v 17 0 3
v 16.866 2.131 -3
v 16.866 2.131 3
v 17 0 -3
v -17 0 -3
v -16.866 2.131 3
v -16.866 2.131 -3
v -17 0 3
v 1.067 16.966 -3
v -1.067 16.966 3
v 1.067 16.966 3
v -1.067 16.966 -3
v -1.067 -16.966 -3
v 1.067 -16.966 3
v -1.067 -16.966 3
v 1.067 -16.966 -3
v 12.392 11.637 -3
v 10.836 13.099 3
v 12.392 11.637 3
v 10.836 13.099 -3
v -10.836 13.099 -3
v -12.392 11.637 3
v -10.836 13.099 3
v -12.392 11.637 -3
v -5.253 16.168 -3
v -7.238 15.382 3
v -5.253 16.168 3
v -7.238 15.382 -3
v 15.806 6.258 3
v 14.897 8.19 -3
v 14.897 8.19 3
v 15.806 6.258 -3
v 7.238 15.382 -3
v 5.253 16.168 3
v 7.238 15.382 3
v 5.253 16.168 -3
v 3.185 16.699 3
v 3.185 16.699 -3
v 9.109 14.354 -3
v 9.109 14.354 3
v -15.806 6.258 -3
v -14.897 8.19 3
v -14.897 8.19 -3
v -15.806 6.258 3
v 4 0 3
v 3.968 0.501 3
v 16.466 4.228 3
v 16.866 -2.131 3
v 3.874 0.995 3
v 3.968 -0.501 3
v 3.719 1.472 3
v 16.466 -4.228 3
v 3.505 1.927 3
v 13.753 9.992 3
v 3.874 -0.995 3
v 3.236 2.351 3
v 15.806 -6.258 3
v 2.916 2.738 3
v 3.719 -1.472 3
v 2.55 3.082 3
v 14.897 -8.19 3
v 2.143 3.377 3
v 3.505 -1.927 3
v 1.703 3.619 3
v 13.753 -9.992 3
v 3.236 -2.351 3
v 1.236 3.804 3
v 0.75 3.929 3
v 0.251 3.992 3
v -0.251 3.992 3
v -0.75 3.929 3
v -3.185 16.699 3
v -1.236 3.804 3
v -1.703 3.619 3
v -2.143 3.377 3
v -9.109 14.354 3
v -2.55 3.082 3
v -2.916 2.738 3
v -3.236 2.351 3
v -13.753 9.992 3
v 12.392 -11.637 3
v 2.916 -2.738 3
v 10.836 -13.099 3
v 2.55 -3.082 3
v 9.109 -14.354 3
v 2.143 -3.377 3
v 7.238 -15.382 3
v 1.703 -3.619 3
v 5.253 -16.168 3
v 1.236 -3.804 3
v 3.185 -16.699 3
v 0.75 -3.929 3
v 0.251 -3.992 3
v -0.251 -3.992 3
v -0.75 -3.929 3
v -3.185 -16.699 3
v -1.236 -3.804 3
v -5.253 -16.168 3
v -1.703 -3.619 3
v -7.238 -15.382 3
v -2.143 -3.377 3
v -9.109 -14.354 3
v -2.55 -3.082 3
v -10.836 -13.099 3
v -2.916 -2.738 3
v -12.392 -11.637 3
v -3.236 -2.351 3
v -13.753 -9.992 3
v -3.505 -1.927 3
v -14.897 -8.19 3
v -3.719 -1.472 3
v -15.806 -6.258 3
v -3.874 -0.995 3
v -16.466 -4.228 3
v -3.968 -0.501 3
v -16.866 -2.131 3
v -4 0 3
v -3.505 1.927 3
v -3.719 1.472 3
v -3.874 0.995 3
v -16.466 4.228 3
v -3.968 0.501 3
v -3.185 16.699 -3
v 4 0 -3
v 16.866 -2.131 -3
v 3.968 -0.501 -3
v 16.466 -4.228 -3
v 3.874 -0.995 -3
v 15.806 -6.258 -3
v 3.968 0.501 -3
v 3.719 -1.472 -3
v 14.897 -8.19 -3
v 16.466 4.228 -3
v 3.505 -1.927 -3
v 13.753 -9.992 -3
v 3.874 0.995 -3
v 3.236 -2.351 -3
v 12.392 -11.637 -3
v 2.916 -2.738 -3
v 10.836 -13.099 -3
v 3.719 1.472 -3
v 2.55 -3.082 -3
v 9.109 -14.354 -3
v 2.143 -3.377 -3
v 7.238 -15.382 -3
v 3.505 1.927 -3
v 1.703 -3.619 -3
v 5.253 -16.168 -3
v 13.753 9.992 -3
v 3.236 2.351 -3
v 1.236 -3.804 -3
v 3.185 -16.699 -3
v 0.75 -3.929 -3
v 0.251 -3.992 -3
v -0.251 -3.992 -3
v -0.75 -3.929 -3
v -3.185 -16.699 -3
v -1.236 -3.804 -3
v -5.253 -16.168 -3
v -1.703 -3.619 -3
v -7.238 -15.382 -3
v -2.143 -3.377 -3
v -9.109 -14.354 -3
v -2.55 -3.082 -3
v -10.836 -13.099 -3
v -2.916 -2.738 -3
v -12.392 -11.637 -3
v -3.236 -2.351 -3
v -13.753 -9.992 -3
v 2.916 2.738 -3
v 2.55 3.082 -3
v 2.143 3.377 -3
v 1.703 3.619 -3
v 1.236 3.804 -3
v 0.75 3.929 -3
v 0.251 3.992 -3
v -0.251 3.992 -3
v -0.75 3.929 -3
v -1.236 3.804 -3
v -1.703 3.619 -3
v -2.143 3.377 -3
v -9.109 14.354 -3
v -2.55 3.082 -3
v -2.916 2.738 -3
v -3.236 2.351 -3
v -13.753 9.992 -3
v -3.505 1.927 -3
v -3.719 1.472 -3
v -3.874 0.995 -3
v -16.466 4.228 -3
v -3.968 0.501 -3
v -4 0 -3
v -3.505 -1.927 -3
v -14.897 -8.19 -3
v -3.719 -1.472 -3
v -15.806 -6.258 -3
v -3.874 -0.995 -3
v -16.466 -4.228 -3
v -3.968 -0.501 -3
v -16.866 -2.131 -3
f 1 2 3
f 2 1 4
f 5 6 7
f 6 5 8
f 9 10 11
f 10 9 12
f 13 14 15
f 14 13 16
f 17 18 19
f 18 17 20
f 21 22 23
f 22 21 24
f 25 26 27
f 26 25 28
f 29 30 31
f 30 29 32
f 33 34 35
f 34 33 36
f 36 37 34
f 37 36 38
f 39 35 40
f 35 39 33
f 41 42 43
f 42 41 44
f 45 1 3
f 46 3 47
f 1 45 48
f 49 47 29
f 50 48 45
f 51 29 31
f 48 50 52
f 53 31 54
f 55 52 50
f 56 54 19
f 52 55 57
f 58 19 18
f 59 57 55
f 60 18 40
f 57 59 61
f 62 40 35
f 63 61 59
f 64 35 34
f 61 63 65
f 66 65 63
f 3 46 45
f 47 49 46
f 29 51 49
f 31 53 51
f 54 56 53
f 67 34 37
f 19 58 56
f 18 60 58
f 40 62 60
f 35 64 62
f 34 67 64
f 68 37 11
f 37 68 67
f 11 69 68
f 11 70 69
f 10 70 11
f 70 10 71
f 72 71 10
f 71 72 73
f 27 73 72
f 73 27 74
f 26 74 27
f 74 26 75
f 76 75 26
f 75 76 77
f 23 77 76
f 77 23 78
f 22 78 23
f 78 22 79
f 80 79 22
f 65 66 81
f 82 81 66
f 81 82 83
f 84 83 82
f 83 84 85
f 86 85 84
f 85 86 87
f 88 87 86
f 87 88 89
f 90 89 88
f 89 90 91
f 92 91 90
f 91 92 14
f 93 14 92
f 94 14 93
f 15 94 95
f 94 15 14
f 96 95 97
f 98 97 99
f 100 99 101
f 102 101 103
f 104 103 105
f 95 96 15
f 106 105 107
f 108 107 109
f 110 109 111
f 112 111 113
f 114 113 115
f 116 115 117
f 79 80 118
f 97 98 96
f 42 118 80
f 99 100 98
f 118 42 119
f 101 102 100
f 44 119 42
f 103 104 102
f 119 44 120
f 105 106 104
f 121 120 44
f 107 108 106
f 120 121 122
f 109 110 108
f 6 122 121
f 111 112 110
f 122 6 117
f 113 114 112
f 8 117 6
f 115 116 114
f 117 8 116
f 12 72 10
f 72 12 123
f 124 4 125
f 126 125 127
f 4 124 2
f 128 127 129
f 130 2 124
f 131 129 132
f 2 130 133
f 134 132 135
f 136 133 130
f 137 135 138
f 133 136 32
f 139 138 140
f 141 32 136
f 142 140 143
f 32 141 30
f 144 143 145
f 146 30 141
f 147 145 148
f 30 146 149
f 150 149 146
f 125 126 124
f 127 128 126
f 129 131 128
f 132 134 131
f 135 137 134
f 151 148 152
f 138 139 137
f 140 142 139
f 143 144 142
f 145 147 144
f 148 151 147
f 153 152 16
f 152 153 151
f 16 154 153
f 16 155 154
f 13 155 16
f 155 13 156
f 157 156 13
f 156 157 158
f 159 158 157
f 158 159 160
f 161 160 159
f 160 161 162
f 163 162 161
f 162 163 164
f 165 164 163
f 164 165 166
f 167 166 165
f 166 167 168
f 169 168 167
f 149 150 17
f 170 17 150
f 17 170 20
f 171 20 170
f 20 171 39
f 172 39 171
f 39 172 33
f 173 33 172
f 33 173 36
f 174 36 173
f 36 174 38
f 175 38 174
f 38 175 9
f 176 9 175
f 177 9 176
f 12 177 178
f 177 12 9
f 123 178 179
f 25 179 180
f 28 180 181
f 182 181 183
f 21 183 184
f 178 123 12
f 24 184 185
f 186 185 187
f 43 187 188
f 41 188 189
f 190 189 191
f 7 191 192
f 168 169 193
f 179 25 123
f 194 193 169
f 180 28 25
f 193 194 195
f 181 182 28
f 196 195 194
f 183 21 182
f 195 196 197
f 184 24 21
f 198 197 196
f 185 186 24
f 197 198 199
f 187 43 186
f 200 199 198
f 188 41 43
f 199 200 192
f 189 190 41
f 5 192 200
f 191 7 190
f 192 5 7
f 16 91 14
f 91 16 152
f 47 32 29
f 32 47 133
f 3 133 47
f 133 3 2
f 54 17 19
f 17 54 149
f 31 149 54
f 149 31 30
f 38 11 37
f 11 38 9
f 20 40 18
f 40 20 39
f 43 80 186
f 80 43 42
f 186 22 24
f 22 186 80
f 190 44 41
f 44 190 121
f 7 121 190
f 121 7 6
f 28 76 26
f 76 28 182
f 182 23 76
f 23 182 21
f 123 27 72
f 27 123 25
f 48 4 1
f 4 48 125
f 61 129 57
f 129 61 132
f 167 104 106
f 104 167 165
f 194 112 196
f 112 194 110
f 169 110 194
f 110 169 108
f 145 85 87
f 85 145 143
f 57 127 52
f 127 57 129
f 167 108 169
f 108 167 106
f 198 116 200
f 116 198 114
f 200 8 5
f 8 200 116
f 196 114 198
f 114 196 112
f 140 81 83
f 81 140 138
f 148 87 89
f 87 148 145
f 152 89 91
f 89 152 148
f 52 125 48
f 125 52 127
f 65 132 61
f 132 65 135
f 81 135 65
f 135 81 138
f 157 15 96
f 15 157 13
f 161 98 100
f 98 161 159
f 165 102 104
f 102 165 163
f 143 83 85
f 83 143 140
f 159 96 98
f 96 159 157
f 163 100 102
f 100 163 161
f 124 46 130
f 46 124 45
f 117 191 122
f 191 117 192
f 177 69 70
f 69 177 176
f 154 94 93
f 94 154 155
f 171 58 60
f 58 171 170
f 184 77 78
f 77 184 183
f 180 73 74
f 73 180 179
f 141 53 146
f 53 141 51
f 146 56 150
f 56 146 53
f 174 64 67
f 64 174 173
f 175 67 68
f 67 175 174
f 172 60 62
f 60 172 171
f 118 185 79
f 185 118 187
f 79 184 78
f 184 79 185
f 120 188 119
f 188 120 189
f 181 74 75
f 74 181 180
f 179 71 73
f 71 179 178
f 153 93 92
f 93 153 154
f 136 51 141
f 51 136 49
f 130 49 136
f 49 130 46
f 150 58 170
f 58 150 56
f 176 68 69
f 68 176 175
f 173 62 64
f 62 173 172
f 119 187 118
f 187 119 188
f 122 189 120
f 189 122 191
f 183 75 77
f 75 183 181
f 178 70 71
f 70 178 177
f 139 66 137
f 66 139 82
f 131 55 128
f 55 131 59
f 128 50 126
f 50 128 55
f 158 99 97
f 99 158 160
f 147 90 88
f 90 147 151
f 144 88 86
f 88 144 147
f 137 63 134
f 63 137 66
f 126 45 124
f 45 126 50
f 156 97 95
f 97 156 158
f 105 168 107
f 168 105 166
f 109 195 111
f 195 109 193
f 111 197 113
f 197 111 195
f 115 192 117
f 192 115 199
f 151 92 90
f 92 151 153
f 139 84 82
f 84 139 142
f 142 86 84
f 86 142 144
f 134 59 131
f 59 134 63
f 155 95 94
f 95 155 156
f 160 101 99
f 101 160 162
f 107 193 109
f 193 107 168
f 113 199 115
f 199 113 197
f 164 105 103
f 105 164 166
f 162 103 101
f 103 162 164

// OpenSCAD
$fn = 50;


difference() {
	union() {
		translate(v = [0, 0, -3.0000000000]) {
			cylinder(h = 6, r = 17.0000000000);
		}
	}
	union() {
		translate(v = [0, 0, -100.0000000000]) {
			cylinder(h = 200, r = 4);
		}
	}
}
